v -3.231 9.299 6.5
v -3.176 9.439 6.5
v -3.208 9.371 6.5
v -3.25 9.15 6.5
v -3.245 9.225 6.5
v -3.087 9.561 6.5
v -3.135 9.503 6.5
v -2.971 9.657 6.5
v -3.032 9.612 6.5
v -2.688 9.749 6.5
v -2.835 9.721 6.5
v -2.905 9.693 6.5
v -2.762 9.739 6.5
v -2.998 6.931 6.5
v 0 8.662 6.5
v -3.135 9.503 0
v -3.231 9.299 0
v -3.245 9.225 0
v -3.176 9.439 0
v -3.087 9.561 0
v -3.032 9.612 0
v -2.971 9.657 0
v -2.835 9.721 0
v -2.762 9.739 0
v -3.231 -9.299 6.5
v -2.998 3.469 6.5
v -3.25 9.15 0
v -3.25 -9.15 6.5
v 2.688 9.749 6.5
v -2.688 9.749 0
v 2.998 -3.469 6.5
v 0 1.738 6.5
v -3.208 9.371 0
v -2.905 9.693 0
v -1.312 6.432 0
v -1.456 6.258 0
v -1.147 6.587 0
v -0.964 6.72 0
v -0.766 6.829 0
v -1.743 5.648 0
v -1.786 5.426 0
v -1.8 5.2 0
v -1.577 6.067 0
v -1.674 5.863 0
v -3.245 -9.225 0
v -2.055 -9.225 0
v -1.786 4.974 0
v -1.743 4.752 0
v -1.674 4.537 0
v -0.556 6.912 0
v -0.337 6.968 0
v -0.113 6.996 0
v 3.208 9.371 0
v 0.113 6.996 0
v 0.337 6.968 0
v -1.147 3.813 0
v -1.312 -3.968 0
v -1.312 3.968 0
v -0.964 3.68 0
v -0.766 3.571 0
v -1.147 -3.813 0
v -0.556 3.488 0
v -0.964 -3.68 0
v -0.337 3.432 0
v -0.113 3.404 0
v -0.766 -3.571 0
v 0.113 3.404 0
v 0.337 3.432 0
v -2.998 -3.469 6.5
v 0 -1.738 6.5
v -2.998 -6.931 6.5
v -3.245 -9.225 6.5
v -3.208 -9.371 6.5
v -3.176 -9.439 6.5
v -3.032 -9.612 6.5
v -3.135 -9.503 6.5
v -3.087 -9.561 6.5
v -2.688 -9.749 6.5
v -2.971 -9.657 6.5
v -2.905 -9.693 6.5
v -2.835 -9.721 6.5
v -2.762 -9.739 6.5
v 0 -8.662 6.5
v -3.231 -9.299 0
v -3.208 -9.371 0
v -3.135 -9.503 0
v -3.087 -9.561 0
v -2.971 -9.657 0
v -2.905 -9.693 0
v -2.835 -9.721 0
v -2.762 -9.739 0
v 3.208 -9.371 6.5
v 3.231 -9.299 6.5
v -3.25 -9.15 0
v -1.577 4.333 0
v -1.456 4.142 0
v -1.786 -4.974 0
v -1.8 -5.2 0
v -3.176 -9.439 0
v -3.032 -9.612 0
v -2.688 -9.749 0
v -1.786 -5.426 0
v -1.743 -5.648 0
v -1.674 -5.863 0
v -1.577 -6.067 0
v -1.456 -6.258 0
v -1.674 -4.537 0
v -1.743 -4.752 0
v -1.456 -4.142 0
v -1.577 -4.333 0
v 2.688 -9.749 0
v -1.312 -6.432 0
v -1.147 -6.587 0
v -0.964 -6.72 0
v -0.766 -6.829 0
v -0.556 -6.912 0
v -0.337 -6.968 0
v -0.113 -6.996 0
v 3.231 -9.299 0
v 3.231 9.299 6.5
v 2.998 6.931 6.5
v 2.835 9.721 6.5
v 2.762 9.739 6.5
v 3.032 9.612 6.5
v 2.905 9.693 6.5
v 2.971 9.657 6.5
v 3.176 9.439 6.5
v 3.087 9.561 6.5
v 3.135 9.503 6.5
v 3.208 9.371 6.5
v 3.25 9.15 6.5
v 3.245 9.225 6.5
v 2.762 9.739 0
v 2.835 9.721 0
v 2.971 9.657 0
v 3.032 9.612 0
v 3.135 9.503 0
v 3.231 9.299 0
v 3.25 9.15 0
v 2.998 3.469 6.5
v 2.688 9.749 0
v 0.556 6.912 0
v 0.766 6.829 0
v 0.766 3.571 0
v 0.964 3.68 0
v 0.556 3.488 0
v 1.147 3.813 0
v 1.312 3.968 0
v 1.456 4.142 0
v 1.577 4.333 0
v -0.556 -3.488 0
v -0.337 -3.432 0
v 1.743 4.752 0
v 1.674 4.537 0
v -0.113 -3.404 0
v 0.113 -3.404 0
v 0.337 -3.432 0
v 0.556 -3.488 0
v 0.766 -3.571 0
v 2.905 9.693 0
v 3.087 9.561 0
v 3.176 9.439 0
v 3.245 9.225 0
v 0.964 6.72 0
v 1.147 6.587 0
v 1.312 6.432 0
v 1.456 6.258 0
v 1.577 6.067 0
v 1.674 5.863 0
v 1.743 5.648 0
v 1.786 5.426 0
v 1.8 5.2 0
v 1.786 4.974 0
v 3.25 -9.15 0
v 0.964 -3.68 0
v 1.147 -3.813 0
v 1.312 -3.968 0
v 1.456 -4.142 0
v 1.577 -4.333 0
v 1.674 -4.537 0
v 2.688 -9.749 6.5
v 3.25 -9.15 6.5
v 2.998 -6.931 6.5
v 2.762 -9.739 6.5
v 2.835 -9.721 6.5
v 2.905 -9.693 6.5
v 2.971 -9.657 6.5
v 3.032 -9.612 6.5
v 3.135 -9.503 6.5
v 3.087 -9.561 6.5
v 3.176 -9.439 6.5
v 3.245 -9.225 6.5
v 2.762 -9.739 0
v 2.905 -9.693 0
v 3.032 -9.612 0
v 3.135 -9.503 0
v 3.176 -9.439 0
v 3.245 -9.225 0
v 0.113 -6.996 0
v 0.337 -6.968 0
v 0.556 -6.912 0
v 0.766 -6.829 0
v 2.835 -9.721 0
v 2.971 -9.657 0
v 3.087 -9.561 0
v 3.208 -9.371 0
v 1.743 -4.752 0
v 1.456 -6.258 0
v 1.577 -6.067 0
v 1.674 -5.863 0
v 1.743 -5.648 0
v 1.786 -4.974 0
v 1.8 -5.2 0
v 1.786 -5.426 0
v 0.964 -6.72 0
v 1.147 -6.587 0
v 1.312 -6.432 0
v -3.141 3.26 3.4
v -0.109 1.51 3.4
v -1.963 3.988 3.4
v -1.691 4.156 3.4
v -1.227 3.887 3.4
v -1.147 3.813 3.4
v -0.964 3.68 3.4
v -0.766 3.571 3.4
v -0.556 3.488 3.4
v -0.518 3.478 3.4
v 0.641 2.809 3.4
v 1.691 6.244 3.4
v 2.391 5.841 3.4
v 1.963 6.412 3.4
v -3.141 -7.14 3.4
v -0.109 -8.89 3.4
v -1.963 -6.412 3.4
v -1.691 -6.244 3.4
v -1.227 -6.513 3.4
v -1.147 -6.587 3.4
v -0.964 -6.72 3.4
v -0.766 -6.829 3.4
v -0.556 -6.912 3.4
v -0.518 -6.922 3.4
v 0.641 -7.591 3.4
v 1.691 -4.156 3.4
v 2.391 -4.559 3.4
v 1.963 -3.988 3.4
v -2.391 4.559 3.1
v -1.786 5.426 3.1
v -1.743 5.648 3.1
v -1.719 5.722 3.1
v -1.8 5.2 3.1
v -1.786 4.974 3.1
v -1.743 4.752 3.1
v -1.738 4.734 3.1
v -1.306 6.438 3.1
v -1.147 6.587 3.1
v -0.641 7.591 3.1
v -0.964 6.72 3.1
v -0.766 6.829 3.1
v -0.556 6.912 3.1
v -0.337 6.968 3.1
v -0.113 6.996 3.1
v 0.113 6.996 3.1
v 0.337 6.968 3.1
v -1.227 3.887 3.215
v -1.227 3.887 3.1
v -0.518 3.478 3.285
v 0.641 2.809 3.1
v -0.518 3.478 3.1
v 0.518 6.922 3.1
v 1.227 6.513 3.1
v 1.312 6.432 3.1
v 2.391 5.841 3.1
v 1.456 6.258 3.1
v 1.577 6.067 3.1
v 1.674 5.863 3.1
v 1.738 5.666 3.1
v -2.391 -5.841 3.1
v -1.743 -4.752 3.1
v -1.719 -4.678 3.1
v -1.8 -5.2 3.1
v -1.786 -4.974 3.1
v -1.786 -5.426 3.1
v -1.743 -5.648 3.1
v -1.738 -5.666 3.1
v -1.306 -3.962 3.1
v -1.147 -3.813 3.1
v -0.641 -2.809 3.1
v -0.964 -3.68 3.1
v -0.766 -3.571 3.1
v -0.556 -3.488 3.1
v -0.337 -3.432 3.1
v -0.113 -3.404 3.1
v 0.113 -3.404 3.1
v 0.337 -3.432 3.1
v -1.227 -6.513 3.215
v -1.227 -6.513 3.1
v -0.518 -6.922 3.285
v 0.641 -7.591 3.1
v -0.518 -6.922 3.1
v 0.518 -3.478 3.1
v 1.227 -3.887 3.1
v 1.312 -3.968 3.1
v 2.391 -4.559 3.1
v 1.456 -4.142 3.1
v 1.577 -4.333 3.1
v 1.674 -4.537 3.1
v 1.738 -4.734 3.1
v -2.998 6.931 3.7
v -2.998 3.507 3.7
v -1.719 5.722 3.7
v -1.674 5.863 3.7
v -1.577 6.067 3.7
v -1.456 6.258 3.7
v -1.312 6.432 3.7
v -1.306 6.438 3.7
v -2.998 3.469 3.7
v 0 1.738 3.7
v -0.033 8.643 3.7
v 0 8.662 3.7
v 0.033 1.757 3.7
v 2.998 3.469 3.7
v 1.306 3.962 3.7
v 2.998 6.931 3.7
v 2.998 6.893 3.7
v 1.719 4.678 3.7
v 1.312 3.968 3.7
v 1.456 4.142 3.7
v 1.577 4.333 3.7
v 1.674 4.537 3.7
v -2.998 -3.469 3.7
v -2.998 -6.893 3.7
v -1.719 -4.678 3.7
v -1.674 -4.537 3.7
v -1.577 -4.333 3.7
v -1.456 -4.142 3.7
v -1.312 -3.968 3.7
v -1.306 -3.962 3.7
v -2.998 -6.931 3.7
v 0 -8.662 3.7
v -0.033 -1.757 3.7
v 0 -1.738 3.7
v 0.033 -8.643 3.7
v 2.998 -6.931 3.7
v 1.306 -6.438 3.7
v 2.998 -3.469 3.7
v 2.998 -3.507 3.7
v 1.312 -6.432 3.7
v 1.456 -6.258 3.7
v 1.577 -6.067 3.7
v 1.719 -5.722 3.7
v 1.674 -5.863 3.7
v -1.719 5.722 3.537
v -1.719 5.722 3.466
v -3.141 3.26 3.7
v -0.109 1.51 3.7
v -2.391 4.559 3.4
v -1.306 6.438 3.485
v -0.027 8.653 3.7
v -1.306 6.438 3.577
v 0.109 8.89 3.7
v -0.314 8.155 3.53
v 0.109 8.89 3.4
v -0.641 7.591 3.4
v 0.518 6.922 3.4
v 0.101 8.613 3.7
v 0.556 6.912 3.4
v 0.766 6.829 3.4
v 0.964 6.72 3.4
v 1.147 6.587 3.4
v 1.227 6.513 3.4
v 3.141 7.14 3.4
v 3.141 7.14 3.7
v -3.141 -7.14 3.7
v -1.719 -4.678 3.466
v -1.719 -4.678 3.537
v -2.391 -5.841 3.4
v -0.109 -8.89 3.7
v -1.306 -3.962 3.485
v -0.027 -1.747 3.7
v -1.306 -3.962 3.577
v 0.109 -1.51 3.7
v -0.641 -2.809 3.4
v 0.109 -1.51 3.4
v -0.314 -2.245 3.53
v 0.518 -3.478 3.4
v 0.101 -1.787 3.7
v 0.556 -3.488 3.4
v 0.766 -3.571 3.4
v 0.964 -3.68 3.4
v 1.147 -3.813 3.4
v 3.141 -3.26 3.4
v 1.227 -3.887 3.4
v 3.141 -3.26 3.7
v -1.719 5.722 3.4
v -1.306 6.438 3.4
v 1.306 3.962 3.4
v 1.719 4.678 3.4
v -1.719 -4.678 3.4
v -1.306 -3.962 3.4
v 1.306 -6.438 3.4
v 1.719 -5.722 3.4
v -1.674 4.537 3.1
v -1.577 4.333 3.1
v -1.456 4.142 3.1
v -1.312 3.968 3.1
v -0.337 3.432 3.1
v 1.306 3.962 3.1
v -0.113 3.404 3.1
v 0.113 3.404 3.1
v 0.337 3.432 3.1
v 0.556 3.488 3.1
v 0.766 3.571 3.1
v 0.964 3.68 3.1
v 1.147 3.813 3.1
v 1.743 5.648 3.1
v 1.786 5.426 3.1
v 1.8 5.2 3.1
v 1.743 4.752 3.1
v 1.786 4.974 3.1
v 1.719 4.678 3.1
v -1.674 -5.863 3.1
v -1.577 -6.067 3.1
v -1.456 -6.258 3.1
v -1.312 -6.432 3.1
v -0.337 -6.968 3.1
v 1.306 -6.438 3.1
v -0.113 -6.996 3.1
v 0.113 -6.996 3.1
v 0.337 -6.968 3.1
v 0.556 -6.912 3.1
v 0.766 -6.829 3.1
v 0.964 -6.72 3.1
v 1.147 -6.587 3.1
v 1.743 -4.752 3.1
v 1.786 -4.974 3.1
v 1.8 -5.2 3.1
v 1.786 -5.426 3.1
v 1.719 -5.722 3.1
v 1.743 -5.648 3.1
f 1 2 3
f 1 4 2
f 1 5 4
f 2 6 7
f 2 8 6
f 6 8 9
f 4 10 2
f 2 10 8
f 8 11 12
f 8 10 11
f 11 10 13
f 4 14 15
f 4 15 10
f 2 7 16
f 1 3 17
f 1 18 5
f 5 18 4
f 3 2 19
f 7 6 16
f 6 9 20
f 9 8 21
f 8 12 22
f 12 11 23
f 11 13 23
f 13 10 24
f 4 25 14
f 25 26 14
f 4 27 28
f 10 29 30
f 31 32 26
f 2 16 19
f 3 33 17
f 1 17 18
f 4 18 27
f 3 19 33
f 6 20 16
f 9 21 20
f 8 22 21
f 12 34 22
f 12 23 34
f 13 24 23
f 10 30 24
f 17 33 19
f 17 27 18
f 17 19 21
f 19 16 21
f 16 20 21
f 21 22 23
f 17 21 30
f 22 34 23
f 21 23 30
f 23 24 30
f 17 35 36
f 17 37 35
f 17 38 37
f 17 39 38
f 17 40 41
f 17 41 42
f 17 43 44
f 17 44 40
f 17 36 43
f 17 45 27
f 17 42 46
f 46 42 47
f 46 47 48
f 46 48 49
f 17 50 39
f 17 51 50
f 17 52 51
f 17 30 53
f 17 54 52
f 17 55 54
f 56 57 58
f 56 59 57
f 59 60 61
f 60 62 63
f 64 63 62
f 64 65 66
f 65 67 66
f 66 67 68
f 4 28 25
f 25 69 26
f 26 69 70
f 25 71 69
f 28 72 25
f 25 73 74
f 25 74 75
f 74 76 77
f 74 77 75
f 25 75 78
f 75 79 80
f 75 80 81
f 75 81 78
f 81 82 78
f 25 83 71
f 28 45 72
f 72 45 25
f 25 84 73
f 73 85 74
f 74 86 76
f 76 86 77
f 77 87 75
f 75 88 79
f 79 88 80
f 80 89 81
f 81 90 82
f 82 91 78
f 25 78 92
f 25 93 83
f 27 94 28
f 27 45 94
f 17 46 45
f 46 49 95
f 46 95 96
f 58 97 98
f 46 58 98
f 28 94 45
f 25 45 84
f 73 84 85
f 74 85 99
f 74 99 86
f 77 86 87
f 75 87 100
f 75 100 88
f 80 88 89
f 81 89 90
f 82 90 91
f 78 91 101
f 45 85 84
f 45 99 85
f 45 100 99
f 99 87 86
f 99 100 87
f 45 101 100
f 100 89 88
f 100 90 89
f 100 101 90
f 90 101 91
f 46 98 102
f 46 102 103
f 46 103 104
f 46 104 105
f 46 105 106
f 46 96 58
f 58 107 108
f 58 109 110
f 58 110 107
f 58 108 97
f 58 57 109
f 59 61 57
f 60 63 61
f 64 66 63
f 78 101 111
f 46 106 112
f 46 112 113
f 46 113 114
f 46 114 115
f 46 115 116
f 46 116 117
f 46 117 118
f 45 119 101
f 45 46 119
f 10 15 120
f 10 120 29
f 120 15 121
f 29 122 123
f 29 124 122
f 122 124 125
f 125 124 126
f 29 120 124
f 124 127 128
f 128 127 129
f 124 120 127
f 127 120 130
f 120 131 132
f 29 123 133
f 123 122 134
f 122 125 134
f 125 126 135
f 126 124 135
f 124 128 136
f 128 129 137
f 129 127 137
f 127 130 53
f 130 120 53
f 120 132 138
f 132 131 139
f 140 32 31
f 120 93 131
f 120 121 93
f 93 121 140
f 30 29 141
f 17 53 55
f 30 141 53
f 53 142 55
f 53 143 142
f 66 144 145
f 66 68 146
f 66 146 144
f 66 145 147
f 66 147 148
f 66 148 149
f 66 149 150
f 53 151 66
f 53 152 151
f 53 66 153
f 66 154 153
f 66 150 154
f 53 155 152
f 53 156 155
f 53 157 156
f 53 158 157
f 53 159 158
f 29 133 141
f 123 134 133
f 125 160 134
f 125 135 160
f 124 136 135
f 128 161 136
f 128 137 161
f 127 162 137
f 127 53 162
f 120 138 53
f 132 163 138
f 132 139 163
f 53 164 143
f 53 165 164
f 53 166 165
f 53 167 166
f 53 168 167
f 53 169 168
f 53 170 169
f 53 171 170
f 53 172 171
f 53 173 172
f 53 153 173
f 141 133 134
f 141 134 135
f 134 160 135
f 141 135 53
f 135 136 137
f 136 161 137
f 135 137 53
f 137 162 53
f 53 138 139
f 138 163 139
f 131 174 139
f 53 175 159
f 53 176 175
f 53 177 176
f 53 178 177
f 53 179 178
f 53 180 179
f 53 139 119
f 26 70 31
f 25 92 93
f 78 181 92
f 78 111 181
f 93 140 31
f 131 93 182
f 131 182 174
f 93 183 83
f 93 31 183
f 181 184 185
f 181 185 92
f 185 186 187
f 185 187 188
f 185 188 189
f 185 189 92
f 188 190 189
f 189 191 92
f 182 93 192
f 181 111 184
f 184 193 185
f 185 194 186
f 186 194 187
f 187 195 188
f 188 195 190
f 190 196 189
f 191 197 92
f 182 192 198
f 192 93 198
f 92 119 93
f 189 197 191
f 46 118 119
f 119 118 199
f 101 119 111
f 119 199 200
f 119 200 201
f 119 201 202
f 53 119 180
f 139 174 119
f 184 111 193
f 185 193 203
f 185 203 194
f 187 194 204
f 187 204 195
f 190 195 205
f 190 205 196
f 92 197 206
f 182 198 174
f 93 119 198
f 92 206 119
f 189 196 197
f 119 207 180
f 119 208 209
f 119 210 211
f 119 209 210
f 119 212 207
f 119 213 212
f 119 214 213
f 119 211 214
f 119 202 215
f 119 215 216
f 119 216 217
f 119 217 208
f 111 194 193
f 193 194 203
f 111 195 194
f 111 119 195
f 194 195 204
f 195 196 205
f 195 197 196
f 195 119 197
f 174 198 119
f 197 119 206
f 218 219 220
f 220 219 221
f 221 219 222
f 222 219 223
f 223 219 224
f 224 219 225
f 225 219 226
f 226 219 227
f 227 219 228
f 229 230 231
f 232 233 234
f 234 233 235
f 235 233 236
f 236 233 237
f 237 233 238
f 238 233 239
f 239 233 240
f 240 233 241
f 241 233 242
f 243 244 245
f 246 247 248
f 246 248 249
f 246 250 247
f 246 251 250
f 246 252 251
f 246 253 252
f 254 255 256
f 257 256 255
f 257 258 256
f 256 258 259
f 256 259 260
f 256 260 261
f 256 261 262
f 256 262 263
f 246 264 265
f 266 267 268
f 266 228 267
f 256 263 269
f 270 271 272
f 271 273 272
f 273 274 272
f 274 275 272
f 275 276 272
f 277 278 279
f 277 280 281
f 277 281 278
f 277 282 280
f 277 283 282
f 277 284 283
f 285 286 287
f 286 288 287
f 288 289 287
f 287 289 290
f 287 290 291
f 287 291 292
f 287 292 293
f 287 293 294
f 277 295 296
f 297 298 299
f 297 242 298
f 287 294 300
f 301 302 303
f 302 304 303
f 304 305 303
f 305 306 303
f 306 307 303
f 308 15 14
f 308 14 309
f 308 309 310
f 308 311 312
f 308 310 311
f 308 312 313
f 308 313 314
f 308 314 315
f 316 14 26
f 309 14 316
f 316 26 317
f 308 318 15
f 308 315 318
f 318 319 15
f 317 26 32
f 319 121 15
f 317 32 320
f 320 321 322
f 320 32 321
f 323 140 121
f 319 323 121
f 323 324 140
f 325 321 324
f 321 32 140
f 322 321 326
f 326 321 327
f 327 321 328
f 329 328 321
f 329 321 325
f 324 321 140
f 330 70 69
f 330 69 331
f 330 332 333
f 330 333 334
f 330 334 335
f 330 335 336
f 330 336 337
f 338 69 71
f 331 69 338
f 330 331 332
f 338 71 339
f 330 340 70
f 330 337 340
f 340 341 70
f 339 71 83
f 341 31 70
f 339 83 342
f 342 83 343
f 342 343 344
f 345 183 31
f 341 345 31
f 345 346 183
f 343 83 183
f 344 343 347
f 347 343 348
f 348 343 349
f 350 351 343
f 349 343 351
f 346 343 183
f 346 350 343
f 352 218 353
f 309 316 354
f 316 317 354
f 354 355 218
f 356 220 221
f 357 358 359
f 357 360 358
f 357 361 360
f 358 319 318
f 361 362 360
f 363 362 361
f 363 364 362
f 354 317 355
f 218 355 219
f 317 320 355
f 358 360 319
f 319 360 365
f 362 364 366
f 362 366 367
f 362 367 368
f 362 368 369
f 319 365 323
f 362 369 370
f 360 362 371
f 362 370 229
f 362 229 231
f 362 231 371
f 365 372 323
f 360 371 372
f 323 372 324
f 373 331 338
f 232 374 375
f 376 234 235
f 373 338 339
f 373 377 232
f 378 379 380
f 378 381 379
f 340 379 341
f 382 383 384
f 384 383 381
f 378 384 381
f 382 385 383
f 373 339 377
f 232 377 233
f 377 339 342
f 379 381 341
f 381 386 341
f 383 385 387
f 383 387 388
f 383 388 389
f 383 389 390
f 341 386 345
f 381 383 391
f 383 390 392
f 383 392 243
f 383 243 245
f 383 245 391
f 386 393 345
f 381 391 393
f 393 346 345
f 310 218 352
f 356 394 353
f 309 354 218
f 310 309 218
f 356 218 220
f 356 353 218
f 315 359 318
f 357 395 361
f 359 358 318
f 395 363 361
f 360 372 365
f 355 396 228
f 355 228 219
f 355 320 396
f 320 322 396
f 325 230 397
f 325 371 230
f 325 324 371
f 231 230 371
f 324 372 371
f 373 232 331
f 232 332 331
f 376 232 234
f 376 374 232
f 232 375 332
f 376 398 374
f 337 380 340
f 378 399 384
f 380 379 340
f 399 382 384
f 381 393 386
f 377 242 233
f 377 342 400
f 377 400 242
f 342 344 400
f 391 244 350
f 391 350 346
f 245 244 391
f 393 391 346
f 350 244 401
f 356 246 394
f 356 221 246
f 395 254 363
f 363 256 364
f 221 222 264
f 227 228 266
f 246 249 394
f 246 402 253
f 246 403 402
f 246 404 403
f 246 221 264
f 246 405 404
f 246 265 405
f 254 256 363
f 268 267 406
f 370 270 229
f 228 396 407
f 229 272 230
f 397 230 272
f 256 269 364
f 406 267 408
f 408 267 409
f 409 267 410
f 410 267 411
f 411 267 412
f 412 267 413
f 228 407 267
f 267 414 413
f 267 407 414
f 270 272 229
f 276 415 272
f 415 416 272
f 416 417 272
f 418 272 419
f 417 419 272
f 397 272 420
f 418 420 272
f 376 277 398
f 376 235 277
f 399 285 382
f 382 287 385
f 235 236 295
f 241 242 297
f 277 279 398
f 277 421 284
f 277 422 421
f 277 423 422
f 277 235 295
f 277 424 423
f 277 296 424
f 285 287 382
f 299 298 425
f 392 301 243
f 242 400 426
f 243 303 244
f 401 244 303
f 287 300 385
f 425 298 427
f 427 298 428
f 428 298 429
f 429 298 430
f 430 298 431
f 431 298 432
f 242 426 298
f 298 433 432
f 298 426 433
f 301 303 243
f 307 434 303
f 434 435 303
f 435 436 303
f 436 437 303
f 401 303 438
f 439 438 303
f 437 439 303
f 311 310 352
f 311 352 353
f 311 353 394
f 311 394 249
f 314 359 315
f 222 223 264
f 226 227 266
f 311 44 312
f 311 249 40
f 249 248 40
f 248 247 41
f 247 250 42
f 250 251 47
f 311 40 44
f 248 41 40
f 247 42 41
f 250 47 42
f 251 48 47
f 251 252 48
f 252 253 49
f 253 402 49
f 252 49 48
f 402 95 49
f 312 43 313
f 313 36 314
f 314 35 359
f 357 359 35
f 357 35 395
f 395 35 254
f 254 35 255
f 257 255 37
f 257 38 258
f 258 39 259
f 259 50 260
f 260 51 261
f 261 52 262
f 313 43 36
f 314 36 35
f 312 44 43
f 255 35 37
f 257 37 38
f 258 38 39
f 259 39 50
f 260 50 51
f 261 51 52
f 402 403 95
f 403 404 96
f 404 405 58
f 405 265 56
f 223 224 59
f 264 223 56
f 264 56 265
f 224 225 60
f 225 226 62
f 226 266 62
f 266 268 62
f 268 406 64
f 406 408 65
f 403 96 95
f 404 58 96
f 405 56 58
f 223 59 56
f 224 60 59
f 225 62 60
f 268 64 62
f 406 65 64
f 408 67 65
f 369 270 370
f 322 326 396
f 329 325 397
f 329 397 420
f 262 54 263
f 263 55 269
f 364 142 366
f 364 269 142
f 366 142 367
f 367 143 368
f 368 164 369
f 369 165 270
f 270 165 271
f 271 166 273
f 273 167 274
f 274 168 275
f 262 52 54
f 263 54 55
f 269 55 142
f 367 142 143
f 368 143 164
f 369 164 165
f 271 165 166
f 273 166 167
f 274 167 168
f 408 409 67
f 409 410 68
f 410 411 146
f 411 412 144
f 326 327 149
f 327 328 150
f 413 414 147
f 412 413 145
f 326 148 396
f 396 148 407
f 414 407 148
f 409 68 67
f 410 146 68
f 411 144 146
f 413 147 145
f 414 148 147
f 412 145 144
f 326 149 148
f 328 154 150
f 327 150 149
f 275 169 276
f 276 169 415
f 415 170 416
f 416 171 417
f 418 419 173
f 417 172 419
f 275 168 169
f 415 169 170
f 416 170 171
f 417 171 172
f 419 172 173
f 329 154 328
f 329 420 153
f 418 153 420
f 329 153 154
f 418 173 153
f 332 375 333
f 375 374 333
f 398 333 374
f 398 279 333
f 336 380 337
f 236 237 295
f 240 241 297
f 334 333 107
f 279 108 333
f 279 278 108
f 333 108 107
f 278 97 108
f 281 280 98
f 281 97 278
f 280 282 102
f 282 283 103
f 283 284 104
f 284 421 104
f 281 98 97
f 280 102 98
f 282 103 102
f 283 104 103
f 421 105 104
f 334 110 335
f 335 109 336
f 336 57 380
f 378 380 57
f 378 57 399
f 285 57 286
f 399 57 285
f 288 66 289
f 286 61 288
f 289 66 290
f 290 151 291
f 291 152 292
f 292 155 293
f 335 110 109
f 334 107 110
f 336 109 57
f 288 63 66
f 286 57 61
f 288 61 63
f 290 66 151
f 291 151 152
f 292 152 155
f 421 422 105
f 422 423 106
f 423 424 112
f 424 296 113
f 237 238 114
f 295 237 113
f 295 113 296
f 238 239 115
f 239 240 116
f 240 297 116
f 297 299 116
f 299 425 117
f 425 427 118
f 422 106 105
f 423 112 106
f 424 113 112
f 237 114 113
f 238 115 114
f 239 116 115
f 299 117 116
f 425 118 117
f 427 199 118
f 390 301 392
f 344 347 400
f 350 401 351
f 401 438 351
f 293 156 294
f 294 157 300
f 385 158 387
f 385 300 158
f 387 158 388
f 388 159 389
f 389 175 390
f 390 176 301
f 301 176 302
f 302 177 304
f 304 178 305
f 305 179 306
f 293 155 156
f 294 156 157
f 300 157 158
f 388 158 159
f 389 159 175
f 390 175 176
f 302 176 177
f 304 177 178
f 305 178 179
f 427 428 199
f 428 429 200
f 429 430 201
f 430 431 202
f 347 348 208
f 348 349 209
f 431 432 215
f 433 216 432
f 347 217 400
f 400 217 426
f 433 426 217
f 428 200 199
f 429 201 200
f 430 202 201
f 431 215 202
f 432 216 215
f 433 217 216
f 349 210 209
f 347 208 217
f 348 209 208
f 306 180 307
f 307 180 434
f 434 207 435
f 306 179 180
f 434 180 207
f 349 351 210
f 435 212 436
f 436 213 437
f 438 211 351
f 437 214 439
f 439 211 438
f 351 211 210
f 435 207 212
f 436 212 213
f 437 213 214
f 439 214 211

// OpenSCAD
$fn = 50;

difference() {
	union() {
		translate(v = [-14.5, 0, -3.65]) {
			rotate(a = [180, 0, 0]) {
				difference() {
					union() {
						translate(v = [14.5, 0, -10.15]) {
							hull() {
								translate(v = [-2.65, 9.15, 0]) {
									cylinder(h = 6.5, r = 0.6);
								}
								translate(v = [2.65, 9.15, 0]) {
									cylinder(h = 6.5, r = 0.6);
								}
								translate(v = [-2.65, -9.15, 0]) {
									cylinder(h = 6.5, r = 0.6);
								}
								translate(v = [2.65, -9.15, 0]) {
									cylinder(h = 6.5, r = 0.6);
								}
							}
						}
					}
					union() {
						translate(v = [14.5, -5.2, -7.3500000000000005]) {
							rotate(a = [180, 0, 30]) {
								difference() {
									union() {
										translate(v = [-1.75, -3.25, -0.3]) {
											cube(size = [3.5, 6.5, 0.3]);
										}
										translate(v = [-1.75, -1.75, -0.6]) {
											cube(size = [3.5, 3.5, 0.3]);
										}
										translate(v = [-1.75, -3.25, 52.8]) {
											cube(size = [3.5, 6.5, 0.3]);
										}
										translate(v = [-1.75, -1.75, 53.099999999999994]) {
											cube(size = [3.5, 3.5, 0.3]);
										}
										linear_extrude(height = 102.8) {
											polygon(points = [[3.4619999999999997, 0.0], [1.7310000000000003, 2.9981799479017264], [-1.7309999999999992, 2.9981799479017264], [-3.4619999999999997, 4.2397272186481365e-16], [-1.7310000000000014, -2.998179947901726], [1.7309999999999977, -2.9981799479017277]]);
										}
										translate(v = [-1.75, -3.25, -0.3]) {
											cube(size = [3.5, 6.5, 0.3]);
										}
										translate(v = [-1.75, -1.75, -0.6]) {
											cube(size = [3.5, 3.5, 0.3]);
										}
										translate(v = [-1.75, -3.25, 102.8]) {
											cube(size = [3.5, 6.5, 0.3]);
										}
										translate(v = [-1.75, -1.75, 103.1]) {
											cube(size = [3.5, 3.5, 0.3]);
										}
										translate(v = [-1.75, -3.25, -0.3]) {
											cube(size = [3.5, 6.5, 0.3]);
										}
										translate(v = [-1.75, -1.75, -0.6]) {
											cube(size = [3.5, 3.5, 0.3]);
										}
										translate(v = [-1.75, -3.25, 152.8]) {
											cube(size = [3.5, 6.5, 0.3]);
										}
										translate(v = [-1.75, -1.75, 153.10000000000002]) {
											cube(size = [3.5, 3.5, 0.3]);
										}
									}
									union();
								}
							}
						}
						translate(v = [14.5, 5.2, -7.3500000000000005]) {
							rotate(a = [180, 0, 30]) {
								difference() {
									union() {
										translate(v = [-1.75, -3.25, -0.3]) {
											cube(size = [3.5, 6.5, 0.3]);
										}
										translate(v = [-1.75, -1.75, -0.6]) {
											cube(size = [3.5, 3.5, 0.3]);
										}
										translate(v = [-1.75, -3.25, 52.8]) {
											cube(size = [3.5, 6.5, 0.3]);
										}
										translate(v = [-1.75, -1.75, 53.099999999999994]) {
											cube(size = [3.5, 3.5, 0.3]);
										}
										linear_extrude(height = 102.8) {
											polygon(points = [[3.4619999999999997, 0.0], [1.7310000000000003, 2.9981799479017264], [-1.7309999999999992, 2.9981799479017264], [-3.4619999999999997, 4.2397272186481365e-16], [-1.7310000000000014, -2.998179947901726], [1.7309999999999977, -2.9981799479017277]]);
										}
										translate(v = [-1.75, -3.25, -0.3]) {
											cube(size = [3.5, 6.5, 0.3]);
										}
										translate(v = [-1.75, -1.75, -0.6]) {
											cube(size = [3.5, 3.5, 0.3]);
										}
										translate(v = [-1.75, -3.25, 102.8]) {
											cube(size = [3.5, 6.5, 0.3]);
										}
										translate(v = [-1.75, -1.75, 103.1]) {
											cube(size = [3.5, 3.5, 0.3]);
										}
										translate(v = [-1.75, -3.25, -0.3]) {
											cube(size = [3.5, 6.5, 0.3]);
										}
										translate(v = [-1.75, -1.75, -0.6]) {
											cube(size = [3.5, 3.5, 0.3]);
										}
										translate(v = [-1.75, -3.25, 152.8]) {
											cube(size = [3.5, 6.5, 0.3]);
										}
										translate(v = [-1.75, -1.75, 153.10000000000002]) {
											cube(size = [3.5, 3.5, 0.3]);
										}
									}
									union();
								}
							}
						}
						translate(v = [14.5, -5.2, -11.15]) {
							cylinder(h = 8.5, r = 1.8);
						}
						translate(v = [14.5, 5.2, -11.15]) {
							cylinder(h = 8.5, r = 1.8);
						}
					}
				}
			}
		}
	}
	union();
}
